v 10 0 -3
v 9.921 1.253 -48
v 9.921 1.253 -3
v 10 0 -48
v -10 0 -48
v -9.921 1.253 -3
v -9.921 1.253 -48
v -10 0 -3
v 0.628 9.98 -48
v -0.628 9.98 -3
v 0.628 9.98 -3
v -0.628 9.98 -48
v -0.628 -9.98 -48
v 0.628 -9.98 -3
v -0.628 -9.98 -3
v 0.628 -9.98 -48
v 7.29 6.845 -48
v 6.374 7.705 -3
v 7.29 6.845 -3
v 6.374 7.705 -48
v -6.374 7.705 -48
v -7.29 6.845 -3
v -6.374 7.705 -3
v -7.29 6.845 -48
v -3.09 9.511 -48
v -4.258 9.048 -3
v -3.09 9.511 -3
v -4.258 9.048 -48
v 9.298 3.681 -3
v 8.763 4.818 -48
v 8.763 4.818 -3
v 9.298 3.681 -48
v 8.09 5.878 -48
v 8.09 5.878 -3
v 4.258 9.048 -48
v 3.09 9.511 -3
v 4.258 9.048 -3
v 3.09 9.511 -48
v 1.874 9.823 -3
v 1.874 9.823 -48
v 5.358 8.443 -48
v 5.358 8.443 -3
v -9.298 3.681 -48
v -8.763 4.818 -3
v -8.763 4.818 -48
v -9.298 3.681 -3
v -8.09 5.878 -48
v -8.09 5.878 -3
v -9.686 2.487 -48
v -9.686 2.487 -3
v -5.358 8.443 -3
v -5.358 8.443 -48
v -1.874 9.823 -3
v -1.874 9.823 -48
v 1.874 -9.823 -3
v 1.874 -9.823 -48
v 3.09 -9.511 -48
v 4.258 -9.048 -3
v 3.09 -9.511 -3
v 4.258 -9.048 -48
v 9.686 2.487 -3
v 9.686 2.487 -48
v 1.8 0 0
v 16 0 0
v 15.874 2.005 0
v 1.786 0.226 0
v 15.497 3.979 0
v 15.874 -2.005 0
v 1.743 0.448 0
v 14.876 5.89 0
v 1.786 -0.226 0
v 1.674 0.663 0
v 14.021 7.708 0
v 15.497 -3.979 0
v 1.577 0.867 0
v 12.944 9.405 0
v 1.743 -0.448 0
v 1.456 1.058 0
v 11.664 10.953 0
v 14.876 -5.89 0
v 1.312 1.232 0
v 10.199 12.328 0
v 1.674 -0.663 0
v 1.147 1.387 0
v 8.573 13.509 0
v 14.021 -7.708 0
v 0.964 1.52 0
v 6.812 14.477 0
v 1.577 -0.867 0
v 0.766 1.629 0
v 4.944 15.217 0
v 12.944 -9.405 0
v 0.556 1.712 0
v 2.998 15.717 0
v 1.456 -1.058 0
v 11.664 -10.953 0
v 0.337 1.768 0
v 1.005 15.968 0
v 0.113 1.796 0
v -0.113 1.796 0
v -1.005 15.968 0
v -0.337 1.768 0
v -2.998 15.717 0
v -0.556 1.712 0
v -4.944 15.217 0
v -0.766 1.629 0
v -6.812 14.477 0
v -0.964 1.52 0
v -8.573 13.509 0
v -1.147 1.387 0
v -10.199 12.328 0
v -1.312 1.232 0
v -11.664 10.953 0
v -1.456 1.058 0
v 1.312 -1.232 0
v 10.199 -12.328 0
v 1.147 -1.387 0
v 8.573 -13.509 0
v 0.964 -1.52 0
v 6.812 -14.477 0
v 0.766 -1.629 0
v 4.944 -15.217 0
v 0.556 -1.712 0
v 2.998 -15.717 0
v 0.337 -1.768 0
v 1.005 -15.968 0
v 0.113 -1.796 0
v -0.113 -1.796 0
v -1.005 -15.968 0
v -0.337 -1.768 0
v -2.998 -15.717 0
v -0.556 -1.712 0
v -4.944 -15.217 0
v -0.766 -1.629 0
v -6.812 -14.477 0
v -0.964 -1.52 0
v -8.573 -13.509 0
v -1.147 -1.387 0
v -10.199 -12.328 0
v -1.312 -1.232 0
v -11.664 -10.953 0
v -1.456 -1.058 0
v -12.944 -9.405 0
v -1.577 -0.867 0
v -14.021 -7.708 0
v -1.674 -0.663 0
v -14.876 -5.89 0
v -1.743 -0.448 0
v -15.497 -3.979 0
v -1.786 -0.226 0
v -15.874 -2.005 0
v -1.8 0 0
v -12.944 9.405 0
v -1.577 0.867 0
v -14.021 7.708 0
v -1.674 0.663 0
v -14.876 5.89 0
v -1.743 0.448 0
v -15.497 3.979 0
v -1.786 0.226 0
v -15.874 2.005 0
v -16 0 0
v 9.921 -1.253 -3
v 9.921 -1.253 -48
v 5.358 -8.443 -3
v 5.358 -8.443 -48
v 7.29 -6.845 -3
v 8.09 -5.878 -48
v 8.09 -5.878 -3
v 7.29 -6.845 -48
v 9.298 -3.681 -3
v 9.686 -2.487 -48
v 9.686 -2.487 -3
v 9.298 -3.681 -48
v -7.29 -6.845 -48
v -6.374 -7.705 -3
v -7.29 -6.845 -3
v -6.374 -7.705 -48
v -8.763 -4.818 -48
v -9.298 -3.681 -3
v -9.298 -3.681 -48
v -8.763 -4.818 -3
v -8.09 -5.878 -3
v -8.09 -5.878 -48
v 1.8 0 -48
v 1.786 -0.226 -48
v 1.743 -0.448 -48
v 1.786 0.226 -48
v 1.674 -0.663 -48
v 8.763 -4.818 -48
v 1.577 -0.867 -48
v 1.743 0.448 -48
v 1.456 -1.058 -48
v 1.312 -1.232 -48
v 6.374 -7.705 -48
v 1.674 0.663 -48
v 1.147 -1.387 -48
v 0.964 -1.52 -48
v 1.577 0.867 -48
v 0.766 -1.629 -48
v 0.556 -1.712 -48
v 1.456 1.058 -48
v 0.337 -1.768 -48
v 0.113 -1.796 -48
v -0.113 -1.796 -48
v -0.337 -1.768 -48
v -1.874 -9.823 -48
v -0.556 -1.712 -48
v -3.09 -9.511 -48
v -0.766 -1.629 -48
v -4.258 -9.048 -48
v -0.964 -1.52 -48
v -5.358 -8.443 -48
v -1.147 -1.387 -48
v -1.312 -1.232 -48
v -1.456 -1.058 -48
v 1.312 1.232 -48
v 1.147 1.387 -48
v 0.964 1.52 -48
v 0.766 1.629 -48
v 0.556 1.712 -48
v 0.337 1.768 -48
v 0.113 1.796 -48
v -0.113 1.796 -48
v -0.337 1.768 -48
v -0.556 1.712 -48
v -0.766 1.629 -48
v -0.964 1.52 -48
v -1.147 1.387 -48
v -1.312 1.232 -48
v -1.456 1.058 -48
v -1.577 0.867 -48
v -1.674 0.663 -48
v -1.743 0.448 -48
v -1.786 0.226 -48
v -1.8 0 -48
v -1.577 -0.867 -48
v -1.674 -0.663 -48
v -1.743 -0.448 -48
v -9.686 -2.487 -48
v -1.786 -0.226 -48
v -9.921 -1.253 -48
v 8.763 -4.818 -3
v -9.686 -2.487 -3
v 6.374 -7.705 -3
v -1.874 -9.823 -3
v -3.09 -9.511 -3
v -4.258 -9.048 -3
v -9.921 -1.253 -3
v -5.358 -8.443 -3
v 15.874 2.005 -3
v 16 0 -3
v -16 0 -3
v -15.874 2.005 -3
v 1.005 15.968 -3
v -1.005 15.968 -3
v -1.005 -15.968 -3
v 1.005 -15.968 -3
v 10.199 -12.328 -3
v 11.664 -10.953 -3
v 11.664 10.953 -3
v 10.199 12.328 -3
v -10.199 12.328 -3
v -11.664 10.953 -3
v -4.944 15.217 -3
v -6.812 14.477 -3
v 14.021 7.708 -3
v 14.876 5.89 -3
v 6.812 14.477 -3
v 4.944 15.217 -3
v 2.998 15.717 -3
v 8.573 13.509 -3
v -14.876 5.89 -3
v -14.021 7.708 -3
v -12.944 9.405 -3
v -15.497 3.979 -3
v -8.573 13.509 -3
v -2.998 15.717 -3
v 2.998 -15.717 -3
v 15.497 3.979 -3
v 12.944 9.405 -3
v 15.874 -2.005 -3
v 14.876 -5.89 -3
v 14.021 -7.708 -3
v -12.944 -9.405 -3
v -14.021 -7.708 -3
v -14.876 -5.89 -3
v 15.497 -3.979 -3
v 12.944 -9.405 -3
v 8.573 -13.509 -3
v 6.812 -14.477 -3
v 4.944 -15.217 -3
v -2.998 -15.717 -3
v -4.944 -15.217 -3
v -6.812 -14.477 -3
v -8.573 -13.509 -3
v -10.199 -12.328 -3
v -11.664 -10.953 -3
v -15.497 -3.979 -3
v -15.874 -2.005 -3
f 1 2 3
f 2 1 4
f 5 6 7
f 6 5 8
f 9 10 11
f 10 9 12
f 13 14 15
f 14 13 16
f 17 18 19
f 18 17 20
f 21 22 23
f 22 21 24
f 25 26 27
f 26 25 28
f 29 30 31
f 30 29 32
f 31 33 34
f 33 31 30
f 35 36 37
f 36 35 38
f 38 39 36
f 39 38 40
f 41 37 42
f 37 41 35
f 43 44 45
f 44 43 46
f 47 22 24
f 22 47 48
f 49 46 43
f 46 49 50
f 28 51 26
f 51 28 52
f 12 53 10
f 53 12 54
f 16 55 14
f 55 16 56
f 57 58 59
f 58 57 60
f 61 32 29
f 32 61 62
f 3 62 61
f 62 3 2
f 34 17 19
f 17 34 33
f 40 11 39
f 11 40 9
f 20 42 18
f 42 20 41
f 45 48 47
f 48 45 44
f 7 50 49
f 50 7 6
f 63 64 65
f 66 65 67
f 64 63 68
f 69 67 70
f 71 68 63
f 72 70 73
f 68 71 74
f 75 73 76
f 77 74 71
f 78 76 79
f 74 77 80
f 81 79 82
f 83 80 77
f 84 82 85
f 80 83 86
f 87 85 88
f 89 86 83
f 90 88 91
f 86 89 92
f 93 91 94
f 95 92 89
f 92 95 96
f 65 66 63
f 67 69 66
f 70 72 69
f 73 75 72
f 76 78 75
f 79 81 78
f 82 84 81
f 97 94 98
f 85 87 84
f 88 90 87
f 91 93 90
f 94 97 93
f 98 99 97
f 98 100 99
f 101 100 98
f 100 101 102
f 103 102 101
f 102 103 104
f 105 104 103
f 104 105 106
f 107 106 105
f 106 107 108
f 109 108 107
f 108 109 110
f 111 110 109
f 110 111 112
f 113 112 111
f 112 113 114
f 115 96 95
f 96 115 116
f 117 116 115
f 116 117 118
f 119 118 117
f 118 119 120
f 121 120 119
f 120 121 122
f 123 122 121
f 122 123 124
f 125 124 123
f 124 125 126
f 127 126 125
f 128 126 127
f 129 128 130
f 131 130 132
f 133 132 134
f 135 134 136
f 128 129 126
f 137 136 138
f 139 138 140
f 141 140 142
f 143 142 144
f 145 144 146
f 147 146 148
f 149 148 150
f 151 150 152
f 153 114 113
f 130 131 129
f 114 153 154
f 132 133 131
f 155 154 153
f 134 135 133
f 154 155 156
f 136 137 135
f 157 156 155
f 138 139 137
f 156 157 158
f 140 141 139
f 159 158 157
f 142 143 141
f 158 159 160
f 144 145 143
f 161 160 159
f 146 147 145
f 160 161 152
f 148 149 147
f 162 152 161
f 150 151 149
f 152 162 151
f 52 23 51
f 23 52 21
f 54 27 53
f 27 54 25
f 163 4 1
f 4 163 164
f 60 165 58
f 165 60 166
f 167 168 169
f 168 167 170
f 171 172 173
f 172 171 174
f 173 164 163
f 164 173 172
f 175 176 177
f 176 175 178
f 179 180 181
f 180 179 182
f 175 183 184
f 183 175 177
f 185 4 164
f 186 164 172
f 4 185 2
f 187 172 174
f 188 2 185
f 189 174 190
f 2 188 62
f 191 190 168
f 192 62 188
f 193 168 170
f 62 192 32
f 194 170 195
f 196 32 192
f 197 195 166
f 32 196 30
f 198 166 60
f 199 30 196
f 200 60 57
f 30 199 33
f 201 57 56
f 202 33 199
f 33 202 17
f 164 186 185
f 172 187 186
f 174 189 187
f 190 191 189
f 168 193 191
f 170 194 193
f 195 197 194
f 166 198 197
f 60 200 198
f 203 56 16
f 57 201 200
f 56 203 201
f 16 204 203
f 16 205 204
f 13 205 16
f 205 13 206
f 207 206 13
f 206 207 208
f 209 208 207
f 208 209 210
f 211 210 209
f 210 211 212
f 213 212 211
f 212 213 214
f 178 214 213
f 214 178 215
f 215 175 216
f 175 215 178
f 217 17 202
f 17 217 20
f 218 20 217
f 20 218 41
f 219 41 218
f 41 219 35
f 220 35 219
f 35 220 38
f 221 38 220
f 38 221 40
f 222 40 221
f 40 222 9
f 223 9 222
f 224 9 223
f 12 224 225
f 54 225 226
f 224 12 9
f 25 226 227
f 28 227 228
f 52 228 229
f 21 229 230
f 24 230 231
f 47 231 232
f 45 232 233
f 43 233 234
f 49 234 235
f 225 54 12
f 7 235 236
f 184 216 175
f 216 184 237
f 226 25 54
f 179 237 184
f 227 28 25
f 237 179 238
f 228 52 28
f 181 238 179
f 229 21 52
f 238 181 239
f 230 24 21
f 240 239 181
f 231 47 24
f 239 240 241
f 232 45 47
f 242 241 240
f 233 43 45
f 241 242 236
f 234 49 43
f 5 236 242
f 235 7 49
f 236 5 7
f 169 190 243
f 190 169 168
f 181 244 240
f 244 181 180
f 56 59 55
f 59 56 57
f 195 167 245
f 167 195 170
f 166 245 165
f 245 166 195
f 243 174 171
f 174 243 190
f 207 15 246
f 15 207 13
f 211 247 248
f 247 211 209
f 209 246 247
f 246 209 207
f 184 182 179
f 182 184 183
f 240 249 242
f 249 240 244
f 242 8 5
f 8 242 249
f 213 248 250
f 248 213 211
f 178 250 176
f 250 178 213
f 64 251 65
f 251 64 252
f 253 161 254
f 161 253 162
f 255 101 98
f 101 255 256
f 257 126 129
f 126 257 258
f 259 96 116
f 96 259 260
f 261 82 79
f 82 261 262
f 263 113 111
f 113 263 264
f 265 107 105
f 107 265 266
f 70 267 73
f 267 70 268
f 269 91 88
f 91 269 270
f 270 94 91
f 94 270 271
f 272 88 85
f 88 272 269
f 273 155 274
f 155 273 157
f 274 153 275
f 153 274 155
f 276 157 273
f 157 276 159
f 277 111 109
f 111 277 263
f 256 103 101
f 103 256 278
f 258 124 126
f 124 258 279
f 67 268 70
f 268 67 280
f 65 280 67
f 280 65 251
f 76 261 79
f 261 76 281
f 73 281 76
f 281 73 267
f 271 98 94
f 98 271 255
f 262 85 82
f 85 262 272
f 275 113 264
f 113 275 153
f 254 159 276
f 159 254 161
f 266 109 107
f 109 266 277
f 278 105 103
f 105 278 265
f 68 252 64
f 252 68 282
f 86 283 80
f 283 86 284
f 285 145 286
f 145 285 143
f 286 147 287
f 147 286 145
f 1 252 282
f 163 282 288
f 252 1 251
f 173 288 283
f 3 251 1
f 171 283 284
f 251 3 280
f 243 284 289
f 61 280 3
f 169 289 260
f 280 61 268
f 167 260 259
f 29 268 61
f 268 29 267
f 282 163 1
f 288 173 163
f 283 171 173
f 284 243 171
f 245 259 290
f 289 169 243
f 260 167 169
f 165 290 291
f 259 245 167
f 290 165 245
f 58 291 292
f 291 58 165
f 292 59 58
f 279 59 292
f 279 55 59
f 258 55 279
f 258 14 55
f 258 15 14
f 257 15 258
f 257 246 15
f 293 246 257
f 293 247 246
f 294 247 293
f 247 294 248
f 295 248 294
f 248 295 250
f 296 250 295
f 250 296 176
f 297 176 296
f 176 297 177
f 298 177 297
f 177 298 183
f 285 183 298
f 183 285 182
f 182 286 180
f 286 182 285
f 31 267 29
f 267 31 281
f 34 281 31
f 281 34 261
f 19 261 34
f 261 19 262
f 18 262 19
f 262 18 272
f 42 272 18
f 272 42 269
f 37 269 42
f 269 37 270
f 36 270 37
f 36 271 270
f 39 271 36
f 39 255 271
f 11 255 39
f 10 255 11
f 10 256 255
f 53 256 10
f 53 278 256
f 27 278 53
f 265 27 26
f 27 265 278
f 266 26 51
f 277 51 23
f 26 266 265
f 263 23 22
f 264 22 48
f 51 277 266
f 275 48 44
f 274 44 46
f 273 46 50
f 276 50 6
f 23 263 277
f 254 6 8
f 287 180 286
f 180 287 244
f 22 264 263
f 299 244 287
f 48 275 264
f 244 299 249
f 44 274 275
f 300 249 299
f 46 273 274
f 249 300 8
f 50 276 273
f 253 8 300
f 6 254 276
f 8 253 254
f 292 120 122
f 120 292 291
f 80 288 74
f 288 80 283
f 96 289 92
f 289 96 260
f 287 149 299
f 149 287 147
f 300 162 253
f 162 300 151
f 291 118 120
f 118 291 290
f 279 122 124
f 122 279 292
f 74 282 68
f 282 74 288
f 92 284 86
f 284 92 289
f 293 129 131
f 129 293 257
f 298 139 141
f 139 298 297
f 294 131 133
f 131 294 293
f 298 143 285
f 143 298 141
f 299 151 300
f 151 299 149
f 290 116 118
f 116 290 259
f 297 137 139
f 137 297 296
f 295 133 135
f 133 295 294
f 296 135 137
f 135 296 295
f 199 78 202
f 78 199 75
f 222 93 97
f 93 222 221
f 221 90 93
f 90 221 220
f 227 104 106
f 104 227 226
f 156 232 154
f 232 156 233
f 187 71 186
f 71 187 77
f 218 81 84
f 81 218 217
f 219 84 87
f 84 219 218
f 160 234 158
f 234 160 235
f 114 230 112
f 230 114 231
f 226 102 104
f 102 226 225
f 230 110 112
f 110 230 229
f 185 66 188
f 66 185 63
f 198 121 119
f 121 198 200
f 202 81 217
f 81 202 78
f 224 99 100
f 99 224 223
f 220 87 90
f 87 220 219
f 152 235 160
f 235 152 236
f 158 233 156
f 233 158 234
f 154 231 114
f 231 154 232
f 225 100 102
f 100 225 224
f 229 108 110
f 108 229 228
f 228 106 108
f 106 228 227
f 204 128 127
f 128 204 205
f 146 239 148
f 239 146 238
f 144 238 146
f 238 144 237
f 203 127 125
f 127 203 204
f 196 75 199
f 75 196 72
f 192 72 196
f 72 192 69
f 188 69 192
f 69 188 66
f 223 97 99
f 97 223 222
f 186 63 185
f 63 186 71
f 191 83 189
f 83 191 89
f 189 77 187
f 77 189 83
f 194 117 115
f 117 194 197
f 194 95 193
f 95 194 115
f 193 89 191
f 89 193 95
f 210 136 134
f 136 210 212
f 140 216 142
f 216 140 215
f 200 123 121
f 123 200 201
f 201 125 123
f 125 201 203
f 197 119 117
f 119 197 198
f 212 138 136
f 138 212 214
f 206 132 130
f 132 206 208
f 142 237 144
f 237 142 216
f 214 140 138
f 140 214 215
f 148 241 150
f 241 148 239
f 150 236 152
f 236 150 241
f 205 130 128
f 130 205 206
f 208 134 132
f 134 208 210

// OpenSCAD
$fn = 50;


difference() {
	union() {
		translate(v = [0, 0, -48.0000000000]) {
			cylinder(h = 48, r = 10.0000000000);
		}
		translate(v = [0, 0, -3.0000000000]) {
			cylinder(h = 3, r = 16.0000000000);
		}
	}
	union() {
		#translate(v = [0, 0, -48]) {
			cylinder(h = 48, r = 1.8000000000);
		}
	}
}
